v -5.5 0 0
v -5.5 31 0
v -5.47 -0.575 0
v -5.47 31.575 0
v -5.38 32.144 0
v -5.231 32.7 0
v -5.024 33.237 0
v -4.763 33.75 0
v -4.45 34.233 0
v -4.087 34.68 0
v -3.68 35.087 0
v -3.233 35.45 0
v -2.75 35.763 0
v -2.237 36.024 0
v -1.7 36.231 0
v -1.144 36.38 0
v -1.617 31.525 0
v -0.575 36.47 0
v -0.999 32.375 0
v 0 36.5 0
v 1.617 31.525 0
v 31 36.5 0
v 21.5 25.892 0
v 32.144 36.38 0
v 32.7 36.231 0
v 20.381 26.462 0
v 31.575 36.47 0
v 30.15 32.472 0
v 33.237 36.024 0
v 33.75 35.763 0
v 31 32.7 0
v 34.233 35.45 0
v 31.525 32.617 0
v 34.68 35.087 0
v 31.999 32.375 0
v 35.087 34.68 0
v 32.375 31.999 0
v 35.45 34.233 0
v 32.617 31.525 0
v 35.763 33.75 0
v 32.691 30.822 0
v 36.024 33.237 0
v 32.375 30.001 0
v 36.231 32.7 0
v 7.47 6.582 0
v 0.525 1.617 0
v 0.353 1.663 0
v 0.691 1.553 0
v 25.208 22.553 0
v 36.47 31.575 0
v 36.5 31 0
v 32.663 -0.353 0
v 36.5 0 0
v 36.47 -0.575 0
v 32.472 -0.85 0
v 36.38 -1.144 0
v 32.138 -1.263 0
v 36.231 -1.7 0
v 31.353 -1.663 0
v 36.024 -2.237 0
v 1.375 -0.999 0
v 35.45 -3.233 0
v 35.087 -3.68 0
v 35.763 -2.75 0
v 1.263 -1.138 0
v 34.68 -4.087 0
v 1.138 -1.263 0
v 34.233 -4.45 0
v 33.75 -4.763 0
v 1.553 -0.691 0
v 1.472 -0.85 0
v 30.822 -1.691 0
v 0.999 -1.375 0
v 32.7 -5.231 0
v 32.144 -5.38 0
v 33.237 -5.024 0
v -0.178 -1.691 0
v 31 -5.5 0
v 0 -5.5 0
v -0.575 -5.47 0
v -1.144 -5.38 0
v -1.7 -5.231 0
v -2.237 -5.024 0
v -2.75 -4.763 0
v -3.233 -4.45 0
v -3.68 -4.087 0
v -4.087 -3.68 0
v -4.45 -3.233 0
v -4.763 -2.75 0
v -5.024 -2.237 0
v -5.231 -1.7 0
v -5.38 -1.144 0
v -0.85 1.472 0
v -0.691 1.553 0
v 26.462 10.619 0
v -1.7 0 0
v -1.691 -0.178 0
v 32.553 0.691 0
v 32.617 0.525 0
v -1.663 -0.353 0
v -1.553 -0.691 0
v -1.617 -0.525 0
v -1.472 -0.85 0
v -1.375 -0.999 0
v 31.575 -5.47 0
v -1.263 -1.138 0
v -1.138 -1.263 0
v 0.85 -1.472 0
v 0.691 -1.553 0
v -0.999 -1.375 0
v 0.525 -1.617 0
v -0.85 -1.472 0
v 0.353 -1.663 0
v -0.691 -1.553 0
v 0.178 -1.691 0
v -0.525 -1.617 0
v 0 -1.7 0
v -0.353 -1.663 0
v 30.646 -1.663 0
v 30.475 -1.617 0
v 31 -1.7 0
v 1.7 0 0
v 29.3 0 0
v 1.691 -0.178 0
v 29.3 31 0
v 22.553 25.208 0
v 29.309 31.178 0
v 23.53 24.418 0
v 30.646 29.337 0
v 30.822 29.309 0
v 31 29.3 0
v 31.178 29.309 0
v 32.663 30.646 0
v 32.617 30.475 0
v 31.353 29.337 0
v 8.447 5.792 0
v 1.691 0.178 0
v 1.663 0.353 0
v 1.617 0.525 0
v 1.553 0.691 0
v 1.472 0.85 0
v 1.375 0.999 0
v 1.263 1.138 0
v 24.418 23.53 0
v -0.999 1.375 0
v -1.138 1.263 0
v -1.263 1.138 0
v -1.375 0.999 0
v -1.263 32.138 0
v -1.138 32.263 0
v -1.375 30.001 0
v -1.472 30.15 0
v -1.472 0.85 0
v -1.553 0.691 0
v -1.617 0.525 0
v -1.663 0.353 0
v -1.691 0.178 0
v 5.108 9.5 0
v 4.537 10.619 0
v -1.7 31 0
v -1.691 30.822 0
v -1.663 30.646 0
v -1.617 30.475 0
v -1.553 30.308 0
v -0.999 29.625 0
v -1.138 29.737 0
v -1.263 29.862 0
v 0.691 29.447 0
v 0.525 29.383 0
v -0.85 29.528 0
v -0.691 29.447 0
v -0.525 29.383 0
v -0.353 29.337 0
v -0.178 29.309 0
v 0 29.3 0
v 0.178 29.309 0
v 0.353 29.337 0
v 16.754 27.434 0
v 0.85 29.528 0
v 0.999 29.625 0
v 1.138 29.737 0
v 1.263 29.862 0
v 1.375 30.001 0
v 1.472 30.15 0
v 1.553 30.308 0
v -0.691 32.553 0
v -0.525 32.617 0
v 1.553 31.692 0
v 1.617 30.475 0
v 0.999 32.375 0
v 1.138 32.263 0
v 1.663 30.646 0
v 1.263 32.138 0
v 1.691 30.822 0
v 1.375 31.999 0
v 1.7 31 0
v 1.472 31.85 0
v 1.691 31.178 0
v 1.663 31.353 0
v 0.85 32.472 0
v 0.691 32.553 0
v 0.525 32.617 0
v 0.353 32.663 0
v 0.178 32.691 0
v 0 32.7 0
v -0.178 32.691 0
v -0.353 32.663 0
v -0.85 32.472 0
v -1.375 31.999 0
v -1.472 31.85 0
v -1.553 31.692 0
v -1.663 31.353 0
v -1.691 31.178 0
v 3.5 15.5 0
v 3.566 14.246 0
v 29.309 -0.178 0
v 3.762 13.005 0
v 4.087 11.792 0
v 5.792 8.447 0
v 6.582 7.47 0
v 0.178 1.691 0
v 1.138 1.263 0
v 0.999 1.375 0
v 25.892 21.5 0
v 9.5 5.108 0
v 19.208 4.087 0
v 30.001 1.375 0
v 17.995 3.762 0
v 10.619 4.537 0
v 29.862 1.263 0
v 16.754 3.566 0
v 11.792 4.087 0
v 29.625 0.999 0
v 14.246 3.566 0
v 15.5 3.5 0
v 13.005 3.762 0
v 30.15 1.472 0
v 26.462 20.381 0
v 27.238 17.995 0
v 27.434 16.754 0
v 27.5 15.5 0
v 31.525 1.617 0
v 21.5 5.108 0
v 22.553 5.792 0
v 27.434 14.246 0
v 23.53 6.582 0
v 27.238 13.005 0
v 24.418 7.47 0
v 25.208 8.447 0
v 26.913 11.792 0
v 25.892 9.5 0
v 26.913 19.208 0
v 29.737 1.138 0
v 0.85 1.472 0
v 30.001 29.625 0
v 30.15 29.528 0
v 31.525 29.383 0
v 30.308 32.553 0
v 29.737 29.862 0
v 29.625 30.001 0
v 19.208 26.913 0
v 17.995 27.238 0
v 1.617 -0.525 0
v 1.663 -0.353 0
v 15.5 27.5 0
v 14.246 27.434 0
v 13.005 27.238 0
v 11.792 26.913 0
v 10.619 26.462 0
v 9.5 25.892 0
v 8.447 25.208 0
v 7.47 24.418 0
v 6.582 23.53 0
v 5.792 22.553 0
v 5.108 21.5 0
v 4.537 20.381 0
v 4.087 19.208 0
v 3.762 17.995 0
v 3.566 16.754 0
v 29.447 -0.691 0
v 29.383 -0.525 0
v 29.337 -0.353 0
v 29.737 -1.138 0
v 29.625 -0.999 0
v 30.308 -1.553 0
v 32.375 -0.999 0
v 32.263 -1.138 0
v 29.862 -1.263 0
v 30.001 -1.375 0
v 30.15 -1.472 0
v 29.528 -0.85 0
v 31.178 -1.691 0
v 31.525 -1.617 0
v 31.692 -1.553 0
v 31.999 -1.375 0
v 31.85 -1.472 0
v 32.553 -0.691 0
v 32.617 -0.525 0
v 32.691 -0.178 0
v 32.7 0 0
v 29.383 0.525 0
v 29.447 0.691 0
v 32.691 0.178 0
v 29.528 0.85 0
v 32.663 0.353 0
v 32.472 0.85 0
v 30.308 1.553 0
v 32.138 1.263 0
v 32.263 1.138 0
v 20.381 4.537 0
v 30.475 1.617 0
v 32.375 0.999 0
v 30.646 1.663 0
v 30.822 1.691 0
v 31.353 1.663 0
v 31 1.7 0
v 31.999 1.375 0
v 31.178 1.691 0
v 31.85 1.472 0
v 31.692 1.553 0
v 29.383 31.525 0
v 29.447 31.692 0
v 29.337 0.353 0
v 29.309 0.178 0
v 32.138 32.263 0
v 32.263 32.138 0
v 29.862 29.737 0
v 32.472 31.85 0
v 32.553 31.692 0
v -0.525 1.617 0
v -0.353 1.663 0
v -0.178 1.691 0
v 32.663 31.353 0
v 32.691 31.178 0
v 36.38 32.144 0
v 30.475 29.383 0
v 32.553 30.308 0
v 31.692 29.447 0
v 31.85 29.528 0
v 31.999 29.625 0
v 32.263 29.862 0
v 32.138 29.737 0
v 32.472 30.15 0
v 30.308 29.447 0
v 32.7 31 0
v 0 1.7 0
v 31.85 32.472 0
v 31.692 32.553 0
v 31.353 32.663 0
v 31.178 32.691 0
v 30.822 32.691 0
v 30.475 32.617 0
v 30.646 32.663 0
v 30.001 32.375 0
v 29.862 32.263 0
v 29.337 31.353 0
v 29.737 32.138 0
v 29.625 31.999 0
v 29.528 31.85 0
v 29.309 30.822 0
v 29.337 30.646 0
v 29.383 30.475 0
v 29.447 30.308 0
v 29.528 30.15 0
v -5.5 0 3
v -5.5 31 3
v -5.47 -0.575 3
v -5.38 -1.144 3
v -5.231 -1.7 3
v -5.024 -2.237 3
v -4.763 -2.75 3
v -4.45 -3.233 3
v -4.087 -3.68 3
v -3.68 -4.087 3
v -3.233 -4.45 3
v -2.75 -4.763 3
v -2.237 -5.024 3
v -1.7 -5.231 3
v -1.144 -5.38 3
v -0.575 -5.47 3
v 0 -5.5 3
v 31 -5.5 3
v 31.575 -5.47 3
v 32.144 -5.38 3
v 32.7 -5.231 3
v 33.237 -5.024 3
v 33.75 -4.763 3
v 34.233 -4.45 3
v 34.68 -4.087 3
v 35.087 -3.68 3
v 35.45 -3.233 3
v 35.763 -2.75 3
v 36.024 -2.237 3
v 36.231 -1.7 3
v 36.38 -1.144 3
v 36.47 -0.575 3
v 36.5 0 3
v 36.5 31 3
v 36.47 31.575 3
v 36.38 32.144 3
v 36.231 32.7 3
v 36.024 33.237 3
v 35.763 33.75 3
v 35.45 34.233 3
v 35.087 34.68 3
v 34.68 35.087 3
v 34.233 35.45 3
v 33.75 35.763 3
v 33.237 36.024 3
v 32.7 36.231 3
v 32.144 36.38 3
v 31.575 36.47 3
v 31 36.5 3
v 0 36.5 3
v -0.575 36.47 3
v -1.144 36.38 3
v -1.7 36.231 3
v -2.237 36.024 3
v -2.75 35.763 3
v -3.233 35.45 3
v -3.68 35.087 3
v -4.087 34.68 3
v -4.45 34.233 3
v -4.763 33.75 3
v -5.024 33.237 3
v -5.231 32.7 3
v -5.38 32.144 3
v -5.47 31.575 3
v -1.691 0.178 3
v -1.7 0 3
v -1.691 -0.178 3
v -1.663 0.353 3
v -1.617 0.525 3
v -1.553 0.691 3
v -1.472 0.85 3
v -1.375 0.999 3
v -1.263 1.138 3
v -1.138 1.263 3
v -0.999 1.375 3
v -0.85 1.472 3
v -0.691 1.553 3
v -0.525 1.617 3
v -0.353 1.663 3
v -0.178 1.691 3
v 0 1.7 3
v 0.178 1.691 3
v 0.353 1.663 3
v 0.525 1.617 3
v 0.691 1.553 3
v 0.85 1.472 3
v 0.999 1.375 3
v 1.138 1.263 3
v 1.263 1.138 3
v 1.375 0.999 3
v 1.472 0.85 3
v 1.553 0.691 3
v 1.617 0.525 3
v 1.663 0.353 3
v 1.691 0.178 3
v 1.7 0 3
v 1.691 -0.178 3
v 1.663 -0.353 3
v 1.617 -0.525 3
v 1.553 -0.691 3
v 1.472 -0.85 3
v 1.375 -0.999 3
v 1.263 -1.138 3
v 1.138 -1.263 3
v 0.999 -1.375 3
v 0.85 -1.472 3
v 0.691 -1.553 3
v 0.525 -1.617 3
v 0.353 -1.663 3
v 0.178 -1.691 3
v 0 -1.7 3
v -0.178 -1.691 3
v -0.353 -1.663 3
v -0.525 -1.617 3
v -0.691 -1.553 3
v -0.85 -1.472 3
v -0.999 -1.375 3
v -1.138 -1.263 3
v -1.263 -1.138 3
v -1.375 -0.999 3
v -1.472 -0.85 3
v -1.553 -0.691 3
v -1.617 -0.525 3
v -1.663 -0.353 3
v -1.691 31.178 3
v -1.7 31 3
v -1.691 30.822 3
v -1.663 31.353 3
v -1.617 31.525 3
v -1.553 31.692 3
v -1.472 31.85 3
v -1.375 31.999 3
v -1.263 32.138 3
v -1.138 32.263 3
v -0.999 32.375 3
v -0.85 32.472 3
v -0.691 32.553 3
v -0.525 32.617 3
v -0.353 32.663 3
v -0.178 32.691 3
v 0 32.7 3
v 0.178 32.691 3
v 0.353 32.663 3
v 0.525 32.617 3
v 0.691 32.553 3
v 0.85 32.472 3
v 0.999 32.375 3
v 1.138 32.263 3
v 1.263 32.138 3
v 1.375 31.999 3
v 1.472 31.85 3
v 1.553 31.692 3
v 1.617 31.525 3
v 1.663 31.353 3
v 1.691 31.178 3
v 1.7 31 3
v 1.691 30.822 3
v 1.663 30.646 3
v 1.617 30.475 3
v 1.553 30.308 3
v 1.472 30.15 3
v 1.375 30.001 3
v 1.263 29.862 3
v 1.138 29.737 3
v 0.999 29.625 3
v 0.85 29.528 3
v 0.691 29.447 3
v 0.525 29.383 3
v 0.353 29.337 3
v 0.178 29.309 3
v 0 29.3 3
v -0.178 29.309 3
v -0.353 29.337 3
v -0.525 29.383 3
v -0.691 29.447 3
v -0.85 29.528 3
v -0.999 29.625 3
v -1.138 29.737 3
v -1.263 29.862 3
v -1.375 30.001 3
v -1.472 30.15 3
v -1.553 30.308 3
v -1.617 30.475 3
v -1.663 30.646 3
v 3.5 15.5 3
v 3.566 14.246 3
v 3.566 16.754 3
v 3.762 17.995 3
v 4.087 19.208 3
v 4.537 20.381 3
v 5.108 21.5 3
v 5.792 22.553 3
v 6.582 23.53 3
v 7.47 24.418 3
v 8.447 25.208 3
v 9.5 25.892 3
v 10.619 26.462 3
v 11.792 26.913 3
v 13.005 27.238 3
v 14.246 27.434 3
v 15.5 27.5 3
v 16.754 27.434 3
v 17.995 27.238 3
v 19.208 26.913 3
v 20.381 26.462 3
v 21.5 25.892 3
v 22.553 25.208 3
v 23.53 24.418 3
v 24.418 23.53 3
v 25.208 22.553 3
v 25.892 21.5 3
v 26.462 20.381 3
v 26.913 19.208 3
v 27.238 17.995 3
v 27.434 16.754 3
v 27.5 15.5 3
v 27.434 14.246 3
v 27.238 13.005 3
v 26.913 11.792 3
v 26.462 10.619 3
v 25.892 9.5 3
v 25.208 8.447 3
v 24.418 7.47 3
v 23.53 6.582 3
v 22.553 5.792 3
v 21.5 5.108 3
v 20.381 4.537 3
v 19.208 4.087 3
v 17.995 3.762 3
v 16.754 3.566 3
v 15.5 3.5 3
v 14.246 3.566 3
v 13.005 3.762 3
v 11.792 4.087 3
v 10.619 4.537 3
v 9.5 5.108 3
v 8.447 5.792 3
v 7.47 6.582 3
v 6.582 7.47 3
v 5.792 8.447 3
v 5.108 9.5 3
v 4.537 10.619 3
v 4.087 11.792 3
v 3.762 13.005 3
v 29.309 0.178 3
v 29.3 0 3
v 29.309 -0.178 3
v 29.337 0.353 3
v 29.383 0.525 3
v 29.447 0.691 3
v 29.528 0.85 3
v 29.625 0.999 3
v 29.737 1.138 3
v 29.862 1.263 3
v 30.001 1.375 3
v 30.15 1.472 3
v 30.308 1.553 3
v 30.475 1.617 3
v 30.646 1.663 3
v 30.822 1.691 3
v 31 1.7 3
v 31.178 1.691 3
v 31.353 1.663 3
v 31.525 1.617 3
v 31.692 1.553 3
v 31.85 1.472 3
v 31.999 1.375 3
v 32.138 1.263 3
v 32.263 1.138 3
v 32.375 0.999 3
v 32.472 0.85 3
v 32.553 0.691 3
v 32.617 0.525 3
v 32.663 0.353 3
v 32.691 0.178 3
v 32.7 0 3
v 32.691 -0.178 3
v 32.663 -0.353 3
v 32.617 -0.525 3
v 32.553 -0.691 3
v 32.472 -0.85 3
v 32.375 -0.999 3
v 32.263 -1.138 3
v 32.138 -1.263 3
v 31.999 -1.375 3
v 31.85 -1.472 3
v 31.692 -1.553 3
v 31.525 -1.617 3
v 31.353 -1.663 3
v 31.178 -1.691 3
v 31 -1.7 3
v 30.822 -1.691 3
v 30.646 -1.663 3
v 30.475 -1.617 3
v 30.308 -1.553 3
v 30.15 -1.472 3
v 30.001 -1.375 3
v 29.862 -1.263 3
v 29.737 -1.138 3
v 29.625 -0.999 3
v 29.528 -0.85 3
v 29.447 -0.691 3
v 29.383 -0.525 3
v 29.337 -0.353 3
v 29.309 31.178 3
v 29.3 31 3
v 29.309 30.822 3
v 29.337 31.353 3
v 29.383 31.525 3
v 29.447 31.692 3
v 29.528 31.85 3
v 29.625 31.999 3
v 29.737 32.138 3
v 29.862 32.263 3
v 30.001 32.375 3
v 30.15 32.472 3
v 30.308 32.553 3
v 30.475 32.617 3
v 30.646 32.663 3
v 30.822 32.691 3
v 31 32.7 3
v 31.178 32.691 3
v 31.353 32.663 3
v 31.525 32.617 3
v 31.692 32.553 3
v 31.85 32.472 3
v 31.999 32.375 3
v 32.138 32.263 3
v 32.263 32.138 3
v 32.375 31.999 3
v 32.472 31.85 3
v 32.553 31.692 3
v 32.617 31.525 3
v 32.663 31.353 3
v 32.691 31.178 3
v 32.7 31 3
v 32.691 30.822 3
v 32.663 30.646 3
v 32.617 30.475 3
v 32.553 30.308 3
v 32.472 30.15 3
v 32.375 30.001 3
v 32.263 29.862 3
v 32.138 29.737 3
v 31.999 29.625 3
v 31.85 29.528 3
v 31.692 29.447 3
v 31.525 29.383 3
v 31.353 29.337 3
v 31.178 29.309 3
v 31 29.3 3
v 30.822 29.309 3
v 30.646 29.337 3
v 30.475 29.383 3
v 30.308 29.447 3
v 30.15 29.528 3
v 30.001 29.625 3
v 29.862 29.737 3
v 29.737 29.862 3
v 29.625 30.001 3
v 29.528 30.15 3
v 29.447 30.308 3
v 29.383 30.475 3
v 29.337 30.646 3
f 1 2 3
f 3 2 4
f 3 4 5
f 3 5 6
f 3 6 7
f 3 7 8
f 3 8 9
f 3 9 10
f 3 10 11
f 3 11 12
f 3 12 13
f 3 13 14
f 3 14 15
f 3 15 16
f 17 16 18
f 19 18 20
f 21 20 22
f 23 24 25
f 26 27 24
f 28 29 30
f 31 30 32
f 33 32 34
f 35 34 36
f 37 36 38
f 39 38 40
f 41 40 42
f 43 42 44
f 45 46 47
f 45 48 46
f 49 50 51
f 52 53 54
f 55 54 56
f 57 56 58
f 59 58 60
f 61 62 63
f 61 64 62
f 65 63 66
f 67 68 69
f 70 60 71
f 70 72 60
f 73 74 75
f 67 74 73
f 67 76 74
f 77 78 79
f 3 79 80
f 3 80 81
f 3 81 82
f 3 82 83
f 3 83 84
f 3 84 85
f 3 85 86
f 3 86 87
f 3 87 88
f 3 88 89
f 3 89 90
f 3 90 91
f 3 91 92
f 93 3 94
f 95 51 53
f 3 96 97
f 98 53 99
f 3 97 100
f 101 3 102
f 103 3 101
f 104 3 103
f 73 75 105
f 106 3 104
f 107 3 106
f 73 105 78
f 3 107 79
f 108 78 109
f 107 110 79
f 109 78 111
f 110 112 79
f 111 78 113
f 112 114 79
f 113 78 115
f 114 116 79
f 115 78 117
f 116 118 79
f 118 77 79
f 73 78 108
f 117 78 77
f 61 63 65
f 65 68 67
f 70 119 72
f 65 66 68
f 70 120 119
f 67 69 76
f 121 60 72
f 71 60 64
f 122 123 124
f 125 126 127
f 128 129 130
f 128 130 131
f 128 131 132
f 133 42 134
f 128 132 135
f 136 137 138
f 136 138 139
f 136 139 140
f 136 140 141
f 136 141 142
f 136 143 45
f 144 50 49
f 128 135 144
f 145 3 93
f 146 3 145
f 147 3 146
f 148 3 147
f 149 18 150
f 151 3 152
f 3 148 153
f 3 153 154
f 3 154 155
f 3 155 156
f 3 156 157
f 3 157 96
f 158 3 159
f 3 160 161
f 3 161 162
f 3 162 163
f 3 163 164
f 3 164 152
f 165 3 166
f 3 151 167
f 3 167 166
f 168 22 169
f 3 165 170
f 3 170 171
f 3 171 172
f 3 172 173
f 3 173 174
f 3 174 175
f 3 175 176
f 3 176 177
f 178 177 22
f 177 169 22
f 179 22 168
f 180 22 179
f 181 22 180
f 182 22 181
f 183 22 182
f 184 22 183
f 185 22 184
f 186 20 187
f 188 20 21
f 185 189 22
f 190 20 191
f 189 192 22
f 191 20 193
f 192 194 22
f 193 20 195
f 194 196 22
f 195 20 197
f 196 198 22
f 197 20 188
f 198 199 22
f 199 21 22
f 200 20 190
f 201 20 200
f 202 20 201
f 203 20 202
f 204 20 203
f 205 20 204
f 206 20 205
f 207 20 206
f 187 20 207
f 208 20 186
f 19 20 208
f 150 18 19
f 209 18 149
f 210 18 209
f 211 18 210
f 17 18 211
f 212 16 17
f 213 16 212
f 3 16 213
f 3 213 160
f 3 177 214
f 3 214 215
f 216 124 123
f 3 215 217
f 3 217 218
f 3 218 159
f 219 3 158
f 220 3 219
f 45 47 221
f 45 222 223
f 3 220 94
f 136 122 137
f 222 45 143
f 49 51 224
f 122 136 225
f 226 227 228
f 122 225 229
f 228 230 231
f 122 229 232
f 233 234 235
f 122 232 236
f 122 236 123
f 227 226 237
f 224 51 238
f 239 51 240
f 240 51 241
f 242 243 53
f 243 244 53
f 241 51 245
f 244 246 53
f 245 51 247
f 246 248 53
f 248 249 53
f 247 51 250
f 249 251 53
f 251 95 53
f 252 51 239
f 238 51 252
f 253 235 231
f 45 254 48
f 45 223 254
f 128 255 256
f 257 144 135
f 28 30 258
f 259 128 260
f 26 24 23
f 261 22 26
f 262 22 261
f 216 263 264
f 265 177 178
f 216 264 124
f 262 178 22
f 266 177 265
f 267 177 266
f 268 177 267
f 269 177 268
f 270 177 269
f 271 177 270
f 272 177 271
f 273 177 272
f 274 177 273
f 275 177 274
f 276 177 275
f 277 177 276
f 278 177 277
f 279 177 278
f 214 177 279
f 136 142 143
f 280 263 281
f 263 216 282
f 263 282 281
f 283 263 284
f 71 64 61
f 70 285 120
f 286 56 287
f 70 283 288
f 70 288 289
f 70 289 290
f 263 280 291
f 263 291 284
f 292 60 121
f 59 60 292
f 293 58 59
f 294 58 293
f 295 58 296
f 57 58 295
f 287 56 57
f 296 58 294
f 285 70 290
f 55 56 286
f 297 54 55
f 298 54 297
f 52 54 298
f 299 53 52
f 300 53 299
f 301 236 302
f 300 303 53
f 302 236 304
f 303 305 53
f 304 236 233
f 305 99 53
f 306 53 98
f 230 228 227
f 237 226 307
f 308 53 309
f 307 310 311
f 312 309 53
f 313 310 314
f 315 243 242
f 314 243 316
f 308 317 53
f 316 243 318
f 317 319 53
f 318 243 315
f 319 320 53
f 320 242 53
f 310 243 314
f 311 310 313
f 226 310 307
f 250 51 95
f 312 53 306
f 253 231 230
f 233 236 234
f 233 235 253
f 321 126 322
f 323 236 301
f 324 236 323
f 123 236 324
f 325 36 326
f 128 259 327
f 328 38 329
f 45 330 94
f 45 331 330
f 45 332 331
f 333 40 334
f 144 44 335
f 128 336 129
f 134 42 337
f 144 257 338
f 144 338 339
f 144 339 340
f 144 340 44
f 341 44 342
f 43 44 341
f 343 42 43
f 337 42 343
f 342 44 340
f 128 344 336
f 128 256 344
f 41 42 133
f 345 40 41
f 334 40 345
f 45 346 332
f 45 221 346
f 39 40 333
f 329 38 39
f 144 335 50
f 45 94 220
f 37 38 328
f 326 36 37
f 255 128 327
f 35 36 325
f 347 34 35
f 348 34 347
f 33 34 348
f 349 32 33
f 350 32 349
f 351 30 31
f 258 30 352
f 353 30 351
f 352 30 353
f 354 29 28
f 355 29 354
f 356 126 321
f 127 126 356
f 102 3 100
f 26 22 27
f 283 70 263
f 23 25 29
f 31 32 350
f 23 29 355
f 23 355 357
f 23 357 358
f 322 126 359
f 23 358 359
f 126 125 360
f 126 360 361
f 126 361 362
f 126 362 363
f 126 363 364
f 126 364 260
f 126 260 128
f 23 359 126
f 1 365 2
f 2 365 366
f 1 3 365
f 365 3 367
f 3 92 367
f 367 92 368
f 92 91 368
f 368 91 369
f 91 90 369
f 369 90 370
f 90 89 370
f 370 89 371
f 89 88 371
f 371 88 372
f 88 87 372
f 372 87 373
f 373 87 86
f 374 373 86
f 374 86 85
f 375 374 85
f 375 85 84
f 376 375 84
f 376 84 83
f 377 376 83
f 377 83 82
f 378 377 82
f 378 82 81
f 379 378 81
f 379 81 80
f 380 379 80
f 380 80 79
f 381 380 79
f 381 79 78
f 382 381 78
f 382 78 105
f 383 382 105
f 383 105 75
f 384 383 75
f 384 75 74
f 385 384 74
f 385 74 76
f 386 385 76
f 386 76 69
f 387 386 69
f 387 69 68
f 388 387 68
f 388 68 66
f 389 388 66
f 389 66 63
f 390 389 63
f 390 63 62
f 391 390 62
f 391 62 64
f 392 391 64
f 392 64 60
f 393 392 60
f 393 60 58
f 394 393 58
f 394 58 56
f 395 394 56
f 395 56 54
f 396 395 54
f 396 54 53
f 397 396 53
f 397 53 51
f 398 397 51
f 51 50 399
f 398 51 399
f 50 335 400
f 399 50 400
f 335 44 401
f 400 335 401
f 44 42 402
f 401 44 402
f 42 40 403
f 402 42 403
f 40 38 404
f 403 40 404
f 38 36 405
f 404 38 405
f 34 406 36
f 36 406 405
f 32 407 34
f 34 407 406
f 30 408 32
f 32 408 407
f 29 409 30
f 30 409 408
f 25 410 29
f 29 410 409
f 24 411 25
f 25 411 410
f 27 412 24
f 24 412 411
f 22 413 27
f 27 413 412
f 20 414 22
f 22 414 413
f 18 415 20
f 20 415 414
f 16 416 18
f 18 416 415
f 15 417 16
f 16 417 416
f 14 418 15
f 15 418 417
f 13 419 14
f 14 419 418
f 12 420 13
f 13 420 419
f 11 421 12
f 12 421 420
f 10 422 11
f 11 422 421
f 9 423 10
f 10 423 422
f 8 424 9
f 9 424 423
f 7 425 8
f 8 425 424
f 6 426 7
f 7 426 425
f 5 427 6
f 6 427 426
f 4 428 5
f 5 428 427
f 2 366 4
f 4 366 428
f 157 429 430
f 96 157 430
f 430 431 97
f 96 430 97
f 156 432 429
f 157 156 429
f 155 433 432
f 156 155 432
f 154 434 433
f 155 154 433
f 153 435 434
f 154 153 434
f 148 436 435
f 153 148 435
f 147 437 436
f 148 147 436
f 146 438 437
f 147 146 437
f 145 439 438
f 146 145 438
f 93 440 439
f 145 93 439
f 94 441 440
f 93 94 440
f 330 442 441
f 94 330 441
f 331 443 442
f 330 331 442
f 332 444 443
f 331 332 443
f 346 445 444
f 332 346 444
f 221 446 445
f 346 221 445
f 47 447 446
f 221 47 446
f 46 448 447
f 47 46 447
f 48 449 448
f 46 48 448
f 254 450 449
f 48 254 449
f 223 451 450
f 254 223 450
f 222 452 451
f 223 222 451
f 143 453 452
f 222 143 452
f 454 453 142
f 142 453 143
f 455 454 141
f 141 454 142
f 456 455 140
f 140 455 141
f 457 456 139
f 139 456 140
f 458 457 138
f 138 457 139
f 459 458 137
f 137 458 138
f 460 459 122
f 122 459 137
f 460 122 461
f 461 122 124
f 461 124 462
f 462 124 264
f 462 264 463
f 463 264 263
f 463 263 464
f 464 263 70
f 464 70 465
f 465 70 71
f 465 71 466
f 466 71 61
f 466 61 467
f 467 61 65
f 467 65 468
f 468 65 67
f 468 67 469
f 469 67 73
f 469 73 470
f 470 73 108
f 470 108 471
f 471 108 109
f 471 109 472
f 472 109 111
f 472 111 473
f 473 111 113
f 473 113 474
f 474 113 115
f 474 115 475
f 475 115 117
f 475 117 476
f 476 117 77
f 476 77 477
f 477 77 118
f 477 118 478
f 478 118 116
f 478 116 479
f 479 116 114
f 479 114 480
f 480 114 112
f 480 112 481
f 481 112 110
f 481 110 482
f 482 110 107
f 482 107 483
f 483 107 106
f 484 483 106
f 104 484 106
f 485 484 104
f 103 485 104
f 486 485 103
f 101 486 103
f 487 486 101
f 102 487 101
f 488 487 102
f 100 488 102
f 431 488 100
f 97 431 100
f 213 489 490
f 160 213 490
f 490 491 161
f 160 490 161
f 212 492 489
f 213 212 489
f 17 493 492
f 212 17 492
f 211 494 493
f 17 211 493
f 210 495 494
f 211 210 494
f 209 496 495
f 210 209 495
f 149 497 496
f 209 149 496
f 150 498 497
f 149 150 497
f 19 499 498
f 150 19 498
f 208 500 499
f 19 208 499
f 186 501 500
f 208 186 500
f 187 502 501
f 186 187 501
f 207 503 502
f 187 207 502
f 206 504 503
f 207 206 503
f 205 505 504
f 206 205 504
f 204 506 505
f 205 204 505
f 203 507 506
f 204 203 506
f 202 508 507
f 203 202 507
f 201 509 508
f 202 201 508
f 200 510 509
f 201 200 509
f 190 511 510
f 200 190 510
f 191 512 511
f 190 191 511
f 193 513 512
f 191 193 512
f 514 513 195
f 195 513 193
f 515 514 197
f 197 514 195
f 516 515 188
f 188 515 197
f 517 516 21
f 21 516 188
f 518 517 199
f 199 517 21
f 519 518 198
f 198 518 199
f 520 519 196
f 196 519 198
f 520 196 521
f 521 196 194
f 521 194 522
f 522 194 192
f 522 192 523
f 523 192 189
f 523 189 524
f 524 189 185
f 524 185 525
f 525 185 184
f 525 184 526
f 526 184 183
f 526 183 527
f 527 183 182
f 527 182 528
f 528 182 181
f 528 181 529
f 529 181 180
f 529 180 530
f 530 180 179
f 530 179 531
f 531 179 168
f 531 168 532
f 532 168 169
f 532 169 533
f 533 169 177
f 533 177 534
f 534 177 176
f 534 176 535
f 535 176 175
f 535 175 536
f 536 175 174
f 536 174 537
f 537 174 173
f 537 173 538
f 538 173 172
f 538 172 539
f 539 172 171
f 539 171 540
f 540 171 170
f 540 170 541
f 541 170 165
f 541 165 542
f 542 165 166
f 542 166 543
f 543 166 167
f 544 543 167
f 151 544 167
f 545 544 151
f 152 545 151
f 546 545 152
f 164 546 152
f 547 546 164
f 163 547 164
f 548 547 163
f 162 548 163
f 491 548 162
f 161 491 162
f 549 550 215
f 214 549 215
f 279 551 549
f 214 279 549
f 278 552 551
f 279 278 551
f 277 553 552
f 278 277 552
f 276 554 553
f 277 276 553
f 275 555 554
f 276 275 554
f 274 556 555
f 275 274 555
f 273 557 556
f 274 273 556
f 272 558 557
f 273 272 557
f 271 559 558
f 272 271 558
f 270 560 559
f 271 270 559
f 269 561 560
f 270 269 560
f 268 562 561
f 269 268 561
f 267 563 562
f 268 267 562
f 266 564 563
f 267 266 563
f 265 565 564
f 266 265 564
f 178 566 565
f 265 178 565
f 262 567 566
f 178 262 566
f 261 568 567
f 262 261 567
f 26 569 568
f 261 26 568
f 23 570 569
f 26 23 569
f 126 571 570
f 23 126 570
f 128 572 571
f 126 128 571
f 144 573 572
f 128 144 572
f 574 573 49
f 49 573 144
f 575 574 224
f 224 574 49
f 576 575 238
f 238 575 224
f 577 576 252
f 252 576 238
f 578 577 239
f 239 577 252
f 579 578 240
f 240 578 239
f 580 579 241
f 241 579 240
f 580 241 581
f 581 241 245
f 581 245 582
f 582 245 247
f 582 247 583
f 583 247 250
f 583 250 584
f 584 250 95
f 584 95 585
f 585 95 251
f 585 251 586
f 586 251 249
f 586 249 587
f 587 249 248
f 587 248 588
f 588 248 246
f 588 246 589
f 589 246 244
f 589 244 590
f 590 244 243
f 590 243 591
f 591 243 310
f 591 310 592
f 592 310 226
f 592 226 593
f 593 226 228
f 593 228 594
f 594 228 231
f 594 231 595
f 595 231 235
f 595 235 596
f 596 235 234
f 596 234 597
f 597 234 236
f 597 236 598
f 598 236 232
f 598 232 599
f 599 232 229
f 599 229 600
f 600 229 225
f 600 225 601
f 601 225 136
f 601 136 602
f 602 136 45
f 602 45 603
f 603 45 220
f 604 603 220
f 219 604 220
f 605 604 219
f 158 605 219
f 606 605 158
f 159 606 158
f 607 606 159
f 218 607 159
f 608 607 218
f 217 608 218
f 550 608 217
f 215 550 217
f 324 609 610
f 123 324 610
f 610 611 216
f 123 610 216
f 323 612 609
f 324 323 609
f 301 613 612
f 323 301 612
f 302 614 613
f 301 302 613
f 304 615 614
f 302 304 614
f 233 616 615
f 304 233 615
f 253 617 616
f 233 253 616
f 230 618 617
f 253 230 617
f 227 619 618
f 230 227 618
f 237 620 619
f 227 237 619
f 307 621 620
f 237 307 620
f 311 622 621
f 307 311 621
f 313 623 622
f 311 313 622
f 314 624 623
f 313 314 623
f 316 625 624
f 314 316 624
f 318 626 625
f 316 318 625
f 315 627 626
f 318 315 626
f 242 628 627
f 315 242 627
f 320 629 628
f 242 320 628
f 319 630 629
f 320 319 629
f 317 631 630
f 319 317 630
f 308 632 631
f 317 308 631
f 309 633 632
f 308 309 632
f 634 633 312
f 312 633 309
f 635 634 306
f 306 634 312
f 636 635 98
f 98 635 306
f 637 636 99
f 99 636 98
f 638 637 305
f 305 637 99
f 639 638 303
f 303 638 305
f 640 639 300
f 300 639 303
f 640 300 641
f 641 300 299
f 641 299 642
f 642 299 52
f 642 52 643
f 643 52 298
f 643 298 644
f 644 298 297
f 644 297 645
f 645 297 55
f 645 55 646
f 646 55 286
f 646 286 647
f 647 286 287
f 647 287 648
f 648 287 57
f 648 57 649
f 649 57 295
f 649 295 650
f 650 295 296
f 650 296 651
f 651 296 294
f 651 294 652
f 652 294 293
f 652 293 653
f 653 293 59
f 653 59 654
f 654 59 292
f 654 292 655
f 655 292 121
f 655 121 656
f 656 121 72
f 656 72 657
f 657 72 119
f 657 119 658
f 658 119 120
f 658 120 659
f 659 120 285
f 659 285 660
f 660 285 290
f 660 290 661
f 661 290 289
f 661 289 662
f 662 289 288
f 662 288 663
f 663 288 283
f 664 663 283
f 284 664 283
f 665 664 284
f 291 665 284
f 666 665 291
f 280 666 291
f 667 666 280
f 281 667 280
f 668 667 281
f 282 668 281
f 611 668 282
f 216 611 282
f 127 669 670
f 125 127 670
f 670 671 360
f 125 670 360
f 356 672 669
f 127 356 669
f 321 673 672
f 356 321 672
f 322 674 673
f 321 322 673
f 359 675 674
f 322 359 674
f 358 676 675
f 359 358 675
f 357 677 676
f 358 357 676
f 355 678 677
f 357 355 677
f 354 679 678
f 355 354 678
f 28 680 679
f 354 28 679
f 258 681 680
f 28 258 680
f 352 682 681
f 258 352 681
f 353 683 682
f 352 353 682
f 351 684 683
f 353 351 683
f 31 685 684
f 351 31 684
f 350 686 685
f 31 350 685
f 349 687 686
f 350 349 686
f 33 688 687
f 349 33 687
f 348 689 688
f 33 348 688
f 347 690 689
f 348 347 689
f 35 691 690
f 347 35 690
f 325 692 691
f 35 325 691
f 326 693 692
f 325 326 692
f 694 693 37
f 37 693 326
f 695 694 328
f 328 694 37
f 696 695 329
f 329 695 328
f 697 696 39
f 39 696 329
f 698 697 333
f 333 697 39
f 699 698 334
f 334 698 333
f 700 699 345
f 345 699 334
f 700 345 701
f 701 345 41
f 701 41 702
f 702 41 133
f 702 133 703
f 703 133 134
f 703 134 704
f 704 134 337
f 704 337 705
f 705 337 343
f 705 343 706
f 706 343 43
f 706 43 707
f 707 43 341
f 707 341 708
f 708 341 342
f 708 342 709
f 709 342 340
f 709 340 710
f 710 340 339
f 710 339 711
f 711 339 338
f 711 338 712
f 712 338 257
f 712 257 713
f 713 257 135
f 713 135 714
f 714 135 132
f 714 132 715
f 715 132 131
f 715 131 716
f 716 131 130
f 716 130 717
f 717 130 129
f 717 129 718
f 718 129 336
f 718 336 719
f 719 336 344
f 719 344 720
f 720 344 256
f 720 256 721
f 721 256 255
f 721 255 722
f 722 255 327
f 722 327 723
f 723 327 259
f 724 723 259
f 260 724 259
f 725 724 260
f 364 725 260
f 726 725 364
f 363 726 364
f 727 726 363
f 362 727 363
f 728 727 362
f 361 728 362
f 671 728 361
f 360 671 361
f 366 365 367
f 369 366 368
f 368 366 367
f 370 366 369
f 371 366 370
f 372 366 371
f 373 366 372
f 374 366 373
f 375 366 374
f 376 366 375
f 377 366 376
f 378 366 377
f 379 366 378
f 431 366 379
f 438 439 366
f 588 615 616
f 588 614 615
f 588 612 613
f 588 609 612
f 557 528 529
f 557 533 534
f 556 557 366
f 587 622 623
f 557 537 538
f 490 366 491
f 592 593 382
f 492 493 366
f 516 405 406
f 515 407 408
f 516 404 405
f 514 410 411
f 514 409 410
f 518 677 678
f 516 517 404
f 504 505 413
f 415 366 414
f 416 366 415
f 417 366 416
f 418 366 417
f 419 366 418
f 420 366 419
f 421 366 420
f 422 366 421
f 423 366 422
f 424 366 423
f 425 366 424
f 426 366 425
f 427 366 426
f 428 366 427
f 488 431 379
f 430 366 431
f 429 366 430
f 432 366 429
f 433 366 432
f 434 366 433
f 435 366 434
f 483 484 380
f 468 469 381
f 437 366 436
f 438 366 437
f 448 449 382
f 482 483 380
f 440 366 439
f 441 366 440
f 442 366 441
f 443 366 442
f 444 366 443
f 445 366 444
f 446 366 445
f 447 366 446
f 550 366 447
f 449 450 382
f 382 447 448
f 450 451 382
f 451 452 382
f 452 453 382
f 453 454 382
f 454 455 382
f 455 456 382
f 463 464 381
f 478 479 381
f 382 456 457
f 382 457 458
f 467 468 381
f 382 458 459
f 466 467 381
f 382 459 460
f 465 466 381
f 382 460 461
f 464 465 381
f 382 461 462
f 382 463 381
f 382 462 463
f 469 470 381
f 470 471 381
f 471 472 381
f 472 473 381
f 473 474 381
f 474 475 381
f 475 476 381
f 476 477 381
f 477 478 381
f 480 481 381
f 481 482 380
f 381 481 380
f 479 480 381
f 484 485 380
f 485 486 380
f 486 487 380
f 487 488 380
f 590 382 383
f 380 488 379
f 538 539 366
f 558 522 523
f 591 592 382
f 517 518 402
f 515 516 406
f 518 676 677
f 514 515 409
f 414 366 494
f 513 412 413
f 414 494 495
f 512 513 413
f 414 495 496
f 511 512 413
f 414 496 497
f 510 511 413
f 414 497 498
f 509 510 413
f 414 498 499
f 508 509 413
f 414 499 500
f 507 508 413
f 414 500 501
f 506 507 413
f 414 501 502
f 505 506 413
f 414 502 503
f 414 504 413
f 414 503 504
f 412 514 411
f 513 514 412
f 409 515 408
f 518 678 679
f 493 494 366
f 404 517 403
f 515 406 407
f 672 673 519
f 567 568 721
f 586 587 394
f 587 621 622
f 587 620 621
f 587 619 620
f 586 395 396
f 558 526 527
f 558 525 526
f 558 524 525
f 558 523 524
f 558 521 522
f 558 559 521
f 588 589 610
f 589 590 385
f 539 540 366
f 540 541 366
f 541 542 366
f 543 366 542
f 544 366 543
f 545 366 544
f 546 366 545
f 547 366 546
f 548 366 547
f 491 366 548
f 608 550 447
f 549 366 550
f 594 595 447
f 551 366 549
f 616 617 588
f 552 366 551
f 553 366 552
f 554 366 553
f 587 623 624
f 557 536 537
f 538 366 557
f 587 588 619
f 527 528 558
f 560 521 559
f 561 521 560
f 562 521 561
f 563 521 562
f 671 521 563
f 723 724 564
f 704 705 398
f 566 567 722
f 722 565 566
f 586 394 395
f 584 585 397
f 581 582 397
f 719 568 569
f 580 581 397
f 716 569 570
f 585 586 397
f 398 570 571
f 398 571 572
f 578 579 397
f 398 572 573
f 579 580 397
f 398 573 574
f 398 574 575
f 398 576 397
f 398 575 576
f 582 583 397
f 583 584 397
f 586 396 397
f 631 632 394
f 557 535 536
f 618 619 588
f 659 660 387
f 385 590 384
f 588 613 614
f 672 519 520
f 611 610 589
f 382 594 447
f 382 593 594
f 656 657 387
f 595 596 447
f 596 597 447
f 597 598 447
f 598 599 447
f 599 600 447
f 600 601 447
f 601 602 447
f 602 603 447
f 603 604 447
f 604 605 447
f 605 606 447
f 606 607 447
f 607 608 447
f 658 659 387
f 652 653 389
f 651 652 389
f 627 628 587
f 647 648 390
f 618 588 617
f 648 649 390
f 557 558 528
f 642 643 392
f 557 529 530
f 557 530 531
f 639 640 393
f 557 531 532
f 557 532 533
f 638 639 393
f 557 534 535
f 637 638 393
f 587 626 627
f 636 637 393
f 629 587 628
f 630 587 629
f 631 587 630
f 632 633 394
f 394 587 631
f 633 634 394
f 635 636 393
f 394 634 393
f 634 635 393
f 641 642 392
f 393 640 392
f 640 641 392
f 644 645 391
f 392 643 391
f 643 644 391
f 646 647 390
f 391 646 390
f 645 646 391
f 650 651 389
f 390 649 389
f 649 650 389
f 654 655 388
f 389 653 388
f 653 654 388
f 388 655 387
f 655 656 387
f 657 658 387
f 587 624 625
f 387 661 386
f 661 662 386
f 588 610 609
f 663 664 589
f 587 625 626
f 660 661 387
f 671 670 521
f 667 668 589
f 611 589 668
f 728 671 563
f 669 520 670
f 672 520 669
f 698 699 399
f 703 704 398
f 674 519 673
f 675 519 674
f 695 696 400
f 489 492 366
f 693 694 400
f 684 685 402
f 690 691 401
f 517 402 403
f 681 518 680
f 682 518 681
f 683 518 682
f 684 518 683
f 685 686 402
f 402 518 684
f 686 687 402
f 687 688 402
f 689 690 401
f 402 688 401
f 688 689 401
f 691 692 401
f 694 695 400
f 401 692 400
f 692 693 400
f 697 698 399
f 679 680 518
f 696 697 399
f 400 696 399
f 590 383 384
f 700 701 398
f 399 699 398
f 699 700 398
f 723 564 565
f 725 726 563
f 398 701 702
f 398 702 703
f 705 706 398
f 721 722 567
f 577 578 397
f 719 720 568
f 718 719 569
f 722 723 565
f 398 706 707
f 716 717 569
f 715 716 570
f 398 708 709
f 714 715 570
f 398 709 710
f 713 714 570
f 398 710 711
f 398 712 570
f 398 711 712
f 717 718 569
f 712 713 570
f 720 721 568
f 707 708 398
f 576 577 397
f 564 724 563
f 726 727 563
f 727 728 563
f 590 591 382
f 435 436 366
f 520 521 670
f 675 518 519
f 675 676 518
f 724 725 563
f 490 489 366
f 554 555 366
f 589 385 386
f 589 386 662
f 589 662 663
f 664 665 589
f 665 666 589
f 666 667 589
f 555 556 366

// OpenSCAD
$fn=60;
difference() {
			hull() {
			translate ([0,0,0]) cylinder (r=5.5,h=3);
			translate ([31,0,0]) cylinder (r=5.5,h=3);
			translate ([0,31,0]) cylinder (r=5.5,h=3);
			translate ([31,31,0]) cylinder (r=5.5,h=3);
			}

		translate ([0,0,-1]) cylinder (r=1.7,h=4);
		translate ([31,0,-1]) cylinder (r=1.7,h=4);
		translate ([0,31,-1]) cylinder (r=1.7,h=4);
		translate ([31,31,-1]) cylinder (r=1.7,h=4);

	translate ([15.5,15.5,-1]) cylinder (r=12,h=4);	
}
